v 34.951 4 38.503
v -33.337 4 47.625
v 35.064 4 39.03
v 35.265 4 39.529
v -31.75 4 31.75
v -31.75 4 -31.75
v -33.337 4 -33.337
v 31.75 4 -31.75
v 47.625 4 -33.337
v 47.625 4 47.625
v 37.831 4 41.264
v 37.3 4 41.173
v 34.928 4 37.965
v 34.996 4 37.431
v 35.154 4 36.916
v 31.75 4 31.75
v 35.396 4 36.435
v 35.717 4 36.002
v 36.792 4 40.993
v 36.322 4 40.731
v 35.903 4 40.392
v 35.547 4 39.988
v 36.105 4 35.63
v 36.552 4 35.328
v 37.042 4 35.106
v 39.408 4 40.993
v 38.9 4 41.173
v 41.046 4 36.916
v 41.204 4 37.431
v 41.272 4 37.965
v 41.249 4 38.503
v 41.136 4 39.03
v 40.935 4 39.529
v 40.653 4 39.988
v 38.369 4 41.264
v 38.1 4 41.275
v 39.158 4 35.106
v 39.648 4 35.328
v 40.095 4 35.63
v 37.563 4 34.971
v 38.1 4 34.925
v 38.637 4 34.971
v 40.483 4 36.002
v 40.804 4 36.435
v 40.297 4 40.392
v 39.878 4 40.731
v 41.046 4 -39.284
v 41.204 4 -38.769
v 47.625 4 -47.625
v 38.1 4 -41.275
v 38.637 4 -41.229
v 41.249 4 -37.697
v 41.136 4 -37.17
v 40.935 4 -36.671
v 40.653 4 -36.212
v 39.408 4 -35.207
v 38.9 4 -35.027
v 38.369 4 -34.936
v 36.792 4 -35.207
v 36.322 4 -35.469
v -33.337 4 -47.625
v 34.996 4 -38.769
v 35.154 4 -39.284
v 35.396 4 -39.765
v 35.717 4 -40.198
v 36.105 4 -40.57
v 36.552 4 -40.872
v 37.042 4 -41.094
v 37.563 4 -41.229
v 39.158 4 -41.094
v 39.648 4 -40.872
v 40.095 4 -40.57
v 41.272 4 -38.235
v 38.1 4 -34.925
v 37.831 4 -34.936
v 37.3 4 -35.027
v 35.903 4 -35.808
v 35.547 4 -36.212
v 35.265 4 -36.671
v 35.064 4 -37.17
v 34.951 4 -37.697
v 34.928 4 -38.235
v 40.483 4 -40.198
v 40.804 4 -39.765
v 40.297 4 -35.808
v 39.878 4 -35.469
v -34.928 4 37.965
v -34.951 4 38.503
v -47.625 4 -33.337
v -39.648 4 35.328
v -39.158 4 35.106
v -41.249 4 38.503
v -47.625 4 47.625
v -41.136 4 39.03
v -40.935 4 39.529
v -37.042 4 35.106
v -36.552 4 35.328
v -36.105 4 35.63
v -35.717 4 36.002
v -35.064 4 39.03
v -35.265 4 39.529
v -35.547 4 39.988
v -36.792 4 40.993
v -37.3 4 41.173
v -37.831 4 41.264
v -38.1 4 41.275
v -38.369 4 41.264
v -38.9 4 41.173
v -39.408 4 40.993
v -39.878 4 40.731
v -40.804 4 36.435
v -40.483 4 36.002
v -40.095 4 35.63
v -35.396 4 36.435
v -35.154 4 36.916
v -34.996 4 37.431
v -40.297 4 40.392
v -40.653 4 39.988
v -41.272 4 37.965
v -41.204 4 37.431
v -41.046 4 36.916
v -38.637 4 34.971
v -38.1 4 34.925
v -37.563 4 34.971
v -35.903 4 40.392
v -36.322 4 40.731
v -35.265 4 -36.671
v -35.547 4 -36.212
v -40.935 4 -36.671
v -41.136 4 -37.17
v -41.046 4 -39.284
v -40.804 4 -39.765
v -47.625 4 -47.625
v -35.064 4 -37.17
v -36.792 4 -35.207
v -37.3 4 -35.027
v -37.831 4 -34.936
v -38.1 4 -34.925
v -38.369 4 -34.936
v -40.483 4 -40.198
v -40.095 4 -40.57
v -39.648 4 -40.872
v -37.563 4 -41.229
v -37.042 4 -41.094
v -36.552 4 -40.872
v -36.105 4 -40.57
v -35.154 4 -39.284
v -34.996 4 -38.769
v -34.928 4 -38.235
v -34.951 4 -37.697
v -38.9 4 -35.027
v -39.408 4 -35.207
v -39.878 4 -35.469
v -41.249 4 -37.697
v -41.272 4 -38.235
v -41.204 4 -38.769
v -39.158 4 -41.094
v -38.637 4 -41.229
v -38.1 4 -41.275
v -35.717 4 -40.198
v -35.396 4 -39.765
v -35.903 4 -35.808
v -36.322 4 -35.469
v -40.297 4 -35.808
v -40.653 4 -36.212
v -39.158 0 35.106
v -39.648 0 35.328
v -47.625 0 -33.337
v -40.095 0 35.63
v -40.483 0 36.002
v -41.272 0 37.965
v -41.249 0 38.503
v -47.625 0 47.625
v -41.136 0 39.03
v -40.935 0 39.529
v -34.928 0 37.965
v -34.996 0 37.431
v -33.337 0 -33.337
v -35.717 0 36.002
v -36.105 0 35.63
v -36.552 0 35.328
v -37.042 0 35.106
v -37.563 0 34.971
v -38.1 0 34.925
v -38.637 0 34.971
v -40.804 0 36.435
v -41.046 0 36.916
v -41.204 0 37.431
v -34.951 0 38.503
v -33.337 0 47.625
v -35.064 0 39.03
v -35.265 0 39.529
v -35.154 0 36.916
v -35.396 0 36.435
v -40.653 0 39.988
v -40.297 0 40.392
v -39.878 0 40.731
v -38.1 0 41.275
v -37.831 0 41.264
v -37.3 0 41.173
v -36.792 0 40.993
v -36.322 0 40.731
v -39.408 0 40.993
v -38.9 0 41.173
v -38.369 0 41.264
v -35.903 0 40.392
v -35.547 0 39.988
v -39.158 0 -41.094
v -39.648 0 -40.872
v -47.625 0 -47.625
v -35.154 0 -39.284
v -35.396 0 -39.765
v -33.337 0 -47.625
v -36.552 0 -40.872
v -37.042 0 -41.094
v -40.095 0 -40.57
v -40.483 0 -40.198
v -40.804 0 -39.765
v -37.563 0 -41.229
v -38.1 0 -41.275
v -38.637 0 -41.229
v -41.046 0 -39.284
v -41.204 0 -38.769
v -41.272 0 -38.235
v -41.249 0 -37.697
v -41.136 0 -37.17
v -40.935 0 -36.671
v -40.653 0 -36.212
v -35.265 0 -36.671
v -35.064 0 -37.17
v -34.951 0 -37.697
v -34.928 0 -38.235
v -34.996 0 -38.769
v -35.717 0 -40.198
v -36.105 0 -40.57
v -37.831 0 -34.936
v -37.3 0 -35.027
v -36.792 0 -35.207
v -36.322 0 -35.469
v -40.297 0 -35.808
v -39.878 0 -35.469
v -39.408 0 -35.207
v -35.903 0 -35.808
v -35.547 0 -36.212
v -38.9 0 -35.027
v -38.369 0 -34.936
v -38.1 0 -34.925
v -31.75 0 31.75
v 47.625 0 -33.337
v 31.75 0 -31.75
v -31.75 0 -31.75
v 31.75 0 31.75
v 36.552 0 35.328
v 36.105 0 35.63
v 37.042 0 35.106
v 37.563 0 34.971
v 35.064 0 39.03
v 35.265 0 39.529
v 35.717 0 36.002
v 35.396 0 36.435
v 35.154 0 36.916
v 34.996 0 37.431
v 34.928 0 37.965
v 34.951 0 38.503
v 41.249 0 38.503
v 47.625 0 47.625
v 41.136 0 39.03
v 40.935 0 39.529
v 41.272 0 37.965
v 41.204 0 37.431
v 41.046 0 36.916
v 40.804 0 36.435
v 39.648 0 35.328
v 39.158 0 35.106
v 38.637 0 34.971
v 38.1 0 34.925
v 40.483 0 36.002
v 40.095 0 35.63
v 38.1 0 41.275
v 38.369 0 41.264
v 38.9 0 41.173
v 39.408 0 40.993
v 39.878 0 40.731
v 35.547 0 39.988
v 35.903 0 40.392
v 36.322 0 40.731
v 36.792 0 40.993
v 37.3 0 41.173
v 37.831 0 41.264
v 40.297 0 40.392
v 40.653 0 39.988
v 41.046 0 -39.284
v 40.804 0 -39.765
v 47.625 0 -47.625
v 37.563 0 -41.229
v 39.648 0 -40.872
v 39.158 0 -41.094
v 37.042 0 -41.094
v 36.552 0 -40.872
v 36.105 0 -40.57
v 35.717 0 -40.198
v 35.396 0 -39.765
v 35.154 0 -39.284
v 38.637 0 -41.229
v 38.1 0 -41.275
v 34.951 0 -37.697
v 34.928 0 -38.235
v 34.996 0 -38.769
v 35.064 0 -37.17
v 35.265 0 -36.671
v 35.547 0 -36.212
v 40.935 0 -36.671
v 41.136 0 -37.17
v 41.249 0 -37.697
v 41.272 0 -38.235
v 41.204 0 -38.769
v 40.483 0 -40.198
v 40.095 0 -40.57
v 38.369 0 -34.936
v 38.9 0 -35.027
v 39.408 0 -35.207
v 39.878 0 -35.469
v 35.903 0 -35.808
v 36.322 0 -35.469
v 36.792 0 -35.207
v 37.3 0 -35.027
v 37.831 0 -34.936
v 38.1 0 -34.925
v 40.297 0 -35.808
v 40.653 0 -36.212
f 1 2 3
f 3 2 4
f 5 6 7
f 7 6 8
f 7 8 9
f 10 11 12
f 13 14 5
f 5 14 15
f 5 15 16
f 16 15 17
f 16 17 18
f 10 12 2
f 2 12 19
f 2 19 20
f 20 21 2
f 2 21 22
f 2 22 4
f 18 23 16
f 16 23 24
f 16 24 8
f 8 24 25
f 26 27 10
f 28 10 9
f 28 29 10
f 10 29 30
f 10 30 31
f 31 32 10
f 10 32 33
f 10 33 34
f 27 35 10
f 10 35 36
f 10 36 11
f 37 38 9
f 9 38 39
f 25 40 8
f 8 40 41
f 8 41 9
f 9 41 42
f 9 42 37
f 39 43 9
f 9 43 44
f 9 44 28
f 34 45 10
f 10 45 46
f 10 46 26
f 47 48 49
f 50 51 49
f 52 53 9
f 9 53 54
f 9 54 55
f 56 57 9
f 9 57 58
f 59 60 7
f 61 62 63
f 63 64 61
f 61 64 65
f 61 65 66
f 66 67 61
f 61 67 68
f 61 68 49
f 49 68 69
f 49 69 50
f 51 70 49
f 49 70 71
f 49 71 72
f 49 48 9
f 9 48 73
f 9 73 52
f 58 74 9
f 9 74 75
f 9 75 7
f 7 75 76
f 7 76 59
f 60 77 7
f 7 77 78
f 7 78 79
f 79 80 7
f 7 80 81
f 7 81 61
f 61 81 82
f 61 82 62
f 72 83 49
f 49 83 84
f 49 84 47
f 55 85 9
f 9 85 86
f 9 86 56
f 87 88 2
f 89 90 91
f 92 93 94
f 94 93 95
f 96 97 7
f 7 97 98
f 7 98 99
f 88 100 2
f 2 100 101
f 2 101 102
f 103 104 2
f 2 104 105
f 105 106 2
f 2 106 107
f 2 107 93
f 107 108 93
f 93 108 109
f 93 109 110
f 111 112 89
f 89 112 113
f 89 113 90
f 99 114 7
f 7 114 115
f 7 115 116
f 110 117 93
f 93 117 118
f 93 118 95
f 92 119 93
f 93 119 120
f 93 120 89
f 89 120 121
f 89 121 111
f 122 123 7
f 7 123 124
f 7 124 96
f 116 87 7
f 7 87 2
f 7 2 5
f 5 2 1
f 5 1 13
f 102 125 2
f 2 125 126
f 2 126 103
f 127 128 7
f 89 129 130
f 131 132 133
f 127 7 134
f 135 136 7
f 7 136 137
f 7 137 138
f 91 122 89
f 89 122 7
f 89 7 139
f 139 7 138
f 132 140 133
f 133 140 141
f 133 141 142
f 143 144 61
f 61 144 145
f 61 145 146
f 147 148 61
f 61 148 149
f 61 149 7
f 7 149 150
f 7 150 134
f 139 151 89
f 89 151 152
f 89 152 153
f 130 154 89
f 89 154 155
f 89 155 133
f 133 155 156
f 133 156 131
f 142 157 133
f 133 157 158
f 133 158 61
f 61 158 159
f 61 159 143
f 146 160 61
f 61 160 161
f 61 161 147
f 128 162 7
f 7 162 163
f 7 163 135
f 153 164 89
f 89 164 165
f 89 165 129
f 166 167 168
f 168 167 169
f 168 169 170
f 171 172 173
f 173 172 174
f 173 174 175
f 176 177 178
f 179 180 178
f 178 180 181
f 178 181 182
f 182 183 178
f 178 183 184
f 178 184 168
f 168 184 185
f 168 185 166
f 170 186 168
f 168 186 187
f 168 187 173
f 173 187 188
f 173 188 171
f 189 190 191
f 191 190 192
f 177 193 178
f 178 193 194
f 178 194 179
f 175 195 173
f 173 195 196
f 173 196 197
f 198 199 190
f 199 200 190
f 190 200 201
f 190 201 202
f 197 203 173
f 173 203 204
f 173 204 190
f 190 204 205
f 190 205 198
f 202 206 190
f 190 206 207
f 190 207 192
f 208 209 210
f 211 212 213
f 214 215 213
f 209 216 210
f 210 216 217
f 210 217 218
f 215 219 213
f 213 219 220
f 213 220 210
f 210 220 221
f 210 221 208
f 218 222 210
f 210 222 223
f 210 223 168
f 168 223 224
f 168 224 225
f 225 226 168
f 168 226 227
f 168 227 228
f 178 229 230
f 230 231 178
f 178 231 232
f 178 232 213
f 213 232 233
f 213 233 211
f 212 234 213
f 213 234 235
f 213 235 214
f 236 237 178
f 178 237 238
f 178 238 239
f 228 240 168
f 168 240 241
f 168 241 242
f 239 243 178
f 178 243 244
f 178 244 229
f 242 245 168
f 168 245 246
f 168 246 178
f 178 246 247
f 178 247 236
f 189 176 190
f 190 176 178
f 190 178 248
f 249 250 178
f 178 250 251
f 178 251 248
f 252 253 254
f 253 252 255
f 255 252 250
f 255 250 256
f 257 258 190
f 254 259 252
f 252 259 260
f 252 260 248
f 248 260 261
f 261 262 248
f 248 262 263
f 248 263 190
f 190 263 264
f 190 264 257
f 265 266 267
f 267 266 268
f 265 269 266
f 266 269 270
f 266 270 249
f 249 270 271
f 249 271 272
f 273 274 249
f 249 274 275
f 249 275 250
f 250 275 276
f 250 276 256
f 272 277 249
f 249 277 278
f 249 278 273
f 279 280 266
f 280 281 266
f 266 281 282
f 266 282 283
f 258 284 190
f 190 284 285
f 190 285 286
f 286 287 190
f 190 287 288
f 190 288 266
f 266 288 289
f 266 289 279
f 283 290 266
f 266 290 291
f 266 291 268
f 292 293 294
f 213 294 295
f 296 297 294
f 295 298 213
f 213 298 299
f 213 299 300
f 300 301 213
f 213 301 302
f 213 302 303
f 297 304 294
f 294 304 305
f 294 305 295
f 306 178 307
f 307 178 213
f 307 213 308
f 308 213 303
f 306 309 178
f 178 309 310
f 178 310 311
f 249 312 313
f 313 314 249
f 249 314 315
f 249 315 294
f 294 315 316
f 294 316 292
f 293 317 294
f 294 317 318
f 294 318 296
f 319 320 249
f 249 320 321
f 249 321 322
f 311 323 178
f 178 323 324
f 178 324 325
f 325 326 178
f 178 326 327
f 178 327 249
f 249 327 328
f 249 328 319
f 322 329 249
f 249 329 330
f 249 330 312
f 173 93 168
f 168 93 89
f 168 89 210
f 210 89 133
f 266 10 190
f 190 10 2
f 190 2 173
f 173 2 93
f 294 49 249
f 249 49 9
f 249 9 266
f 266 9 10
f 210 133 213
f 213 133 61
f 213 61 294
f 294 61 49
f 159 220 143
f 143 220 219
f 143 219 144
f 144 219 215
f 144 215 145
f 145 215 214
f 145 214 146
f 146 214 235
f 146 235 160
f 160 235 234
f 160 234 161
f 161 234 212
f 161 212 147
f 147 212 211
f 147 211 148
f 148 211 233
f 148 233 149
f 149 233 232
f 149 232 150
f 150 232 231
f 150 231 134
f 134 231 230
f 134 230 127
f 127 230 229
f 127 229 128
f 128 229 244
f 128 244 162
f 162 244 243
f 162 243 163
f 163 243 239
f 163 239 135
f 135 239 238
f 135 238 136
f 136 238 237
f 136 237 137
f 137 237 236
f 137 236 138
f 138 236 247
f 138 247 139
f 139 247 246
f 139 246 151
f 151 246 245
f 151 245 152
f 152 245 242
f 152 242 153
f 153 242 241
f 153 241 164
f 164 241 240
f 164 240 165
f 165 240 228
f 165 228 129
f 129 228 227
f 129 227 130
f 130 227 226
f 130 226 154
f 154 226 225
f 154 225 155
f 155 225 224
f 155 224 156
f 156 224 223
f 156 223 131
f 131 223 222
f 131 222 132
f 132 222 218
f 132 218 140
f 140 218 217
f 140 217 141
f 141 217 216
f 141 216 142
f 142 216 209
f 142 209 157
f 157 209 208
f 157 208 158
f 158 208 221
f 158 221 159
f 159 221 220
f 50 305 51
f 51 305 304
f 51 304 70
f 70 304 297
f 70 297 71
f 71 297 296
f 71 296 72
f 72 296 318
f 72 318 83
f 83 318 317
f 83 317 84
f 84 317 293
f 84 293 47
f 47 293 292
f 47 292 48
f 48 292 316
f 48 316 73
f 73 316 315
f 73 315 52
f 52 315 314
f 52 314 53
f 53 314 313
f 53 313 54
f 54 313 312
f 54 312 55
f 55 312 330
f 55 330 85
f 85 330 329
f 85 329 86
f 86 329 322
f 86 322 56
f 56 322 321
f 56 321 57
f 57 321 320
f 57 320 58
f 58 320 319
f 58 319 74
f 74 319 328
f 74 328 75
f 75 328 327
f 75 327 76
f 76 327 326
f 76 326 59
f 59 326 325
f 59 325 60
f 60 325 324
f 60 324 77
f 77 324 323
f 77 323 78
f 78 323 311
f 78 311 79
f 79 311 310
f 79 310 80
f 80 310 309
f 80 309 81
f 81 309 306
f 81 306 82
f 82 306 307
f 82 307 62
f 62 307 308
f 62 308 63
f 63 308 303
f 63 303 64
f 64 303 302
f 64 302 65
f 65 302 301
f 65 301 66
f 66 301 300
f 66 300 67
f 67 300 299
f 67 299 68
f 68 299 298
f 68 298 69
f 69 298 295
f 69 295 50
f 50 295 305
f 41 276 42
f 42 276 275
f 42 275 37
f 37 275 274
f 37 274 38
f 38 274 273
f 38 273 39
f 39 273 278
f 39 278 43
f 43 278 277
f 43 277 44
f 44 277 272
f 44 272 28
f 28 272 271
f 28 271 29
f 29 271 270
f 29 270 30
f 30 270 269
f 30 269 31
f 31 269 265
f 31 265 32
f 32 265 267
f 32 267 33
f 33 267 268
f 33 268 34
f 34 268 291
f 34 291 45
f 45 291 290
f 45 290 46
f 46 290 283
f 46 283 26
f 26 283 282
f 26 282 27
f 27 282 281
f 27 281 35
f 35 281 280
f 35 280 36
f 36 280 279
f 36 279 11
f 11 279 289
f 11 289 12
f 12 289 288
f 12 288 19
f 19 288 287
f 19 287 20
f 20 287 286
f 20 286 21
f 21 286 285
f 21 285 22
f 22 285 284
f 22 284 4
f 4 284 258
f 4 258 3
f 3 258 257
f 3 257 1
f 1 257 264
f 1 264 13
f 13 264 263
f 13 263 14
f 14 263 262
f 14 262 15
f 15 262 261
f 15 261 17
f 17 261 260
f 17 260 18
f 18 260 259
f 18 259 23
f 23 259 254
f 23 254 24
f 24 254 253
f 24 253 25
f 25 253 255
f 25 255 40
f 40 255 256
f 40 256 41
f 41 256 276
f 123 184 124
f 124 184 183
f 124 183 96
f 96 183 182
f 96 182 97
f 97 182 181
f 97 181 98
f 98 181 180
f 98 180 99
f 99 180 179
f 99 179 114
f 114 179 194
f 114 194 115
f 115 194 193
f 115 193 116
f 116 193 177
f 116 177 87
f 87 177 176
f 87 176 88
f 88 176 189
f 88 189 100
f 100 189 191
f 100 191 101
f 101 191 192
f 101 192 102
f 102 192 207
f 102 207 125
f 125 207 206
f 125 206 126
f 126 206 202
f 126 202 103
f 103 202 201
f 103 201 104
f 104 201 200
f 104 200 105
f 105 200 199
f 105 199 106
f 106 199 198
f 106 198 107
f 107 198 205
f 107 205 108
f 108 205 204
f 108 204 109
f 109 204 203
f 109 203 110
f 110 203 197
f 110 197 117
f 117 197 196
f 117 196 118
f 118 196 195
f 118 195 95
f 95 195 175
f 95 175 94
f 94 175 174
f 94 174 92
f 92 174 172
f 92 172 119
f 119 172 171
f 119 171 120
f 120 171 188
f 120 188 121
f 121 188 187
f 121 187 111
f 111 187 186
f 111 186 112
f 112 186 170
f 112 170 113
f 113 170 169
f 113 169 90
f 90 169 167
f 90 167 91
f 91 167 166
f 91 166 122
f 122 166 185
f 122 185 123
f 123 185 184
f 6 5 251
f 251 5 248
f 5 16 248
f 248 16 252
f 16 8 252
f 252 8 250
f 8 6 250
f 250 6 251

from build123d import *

# Parameters (mm, degrees)
SKETCH1_W           = 95.25
SKETCH1_H           = 95.25
SKETCH1_R           = 3.175
SKETCH1_W_2         = 63.5
SKETCH1_H_2         = 63.5
BOSS_EXTRUDE1_DEPTH = 4


with BuildPart() as part:
    # Sketch1 → Boss-Extrude1 (new body)
    with BuildSketch(Plane(origin=(0, 0, 0), x_dir=(1, 0, 0), z_dir=(0, 1, 0))):
        Rectangle(SKETCH1_W, SKETCH1_H)
        with Locations((-38.1, 38.1)):
            Circle(SKETCH1_R, mode=Mode.SUBTRACT)
        with Locations((38.1, 38.1)):
            Circle(SKETCH1_R, mode=Mode.SUBTRACT)
        with Locations((38.1, -38.1)):
            Circle(SKETCH1_R, mode=Mode.SUBTRACT)
        with Locations((-38.1, -38.1)):
            Circle(SKETCH1_R, mode=Mode.SUBTRACT)
        Rectangle(SKETCH1_W_2, SKETCH1_H_2, mode=Mode.SUBTRACT)
    extrude(amount=BOSS_EXTRUDE1_DEPTH)


solid = part.part
